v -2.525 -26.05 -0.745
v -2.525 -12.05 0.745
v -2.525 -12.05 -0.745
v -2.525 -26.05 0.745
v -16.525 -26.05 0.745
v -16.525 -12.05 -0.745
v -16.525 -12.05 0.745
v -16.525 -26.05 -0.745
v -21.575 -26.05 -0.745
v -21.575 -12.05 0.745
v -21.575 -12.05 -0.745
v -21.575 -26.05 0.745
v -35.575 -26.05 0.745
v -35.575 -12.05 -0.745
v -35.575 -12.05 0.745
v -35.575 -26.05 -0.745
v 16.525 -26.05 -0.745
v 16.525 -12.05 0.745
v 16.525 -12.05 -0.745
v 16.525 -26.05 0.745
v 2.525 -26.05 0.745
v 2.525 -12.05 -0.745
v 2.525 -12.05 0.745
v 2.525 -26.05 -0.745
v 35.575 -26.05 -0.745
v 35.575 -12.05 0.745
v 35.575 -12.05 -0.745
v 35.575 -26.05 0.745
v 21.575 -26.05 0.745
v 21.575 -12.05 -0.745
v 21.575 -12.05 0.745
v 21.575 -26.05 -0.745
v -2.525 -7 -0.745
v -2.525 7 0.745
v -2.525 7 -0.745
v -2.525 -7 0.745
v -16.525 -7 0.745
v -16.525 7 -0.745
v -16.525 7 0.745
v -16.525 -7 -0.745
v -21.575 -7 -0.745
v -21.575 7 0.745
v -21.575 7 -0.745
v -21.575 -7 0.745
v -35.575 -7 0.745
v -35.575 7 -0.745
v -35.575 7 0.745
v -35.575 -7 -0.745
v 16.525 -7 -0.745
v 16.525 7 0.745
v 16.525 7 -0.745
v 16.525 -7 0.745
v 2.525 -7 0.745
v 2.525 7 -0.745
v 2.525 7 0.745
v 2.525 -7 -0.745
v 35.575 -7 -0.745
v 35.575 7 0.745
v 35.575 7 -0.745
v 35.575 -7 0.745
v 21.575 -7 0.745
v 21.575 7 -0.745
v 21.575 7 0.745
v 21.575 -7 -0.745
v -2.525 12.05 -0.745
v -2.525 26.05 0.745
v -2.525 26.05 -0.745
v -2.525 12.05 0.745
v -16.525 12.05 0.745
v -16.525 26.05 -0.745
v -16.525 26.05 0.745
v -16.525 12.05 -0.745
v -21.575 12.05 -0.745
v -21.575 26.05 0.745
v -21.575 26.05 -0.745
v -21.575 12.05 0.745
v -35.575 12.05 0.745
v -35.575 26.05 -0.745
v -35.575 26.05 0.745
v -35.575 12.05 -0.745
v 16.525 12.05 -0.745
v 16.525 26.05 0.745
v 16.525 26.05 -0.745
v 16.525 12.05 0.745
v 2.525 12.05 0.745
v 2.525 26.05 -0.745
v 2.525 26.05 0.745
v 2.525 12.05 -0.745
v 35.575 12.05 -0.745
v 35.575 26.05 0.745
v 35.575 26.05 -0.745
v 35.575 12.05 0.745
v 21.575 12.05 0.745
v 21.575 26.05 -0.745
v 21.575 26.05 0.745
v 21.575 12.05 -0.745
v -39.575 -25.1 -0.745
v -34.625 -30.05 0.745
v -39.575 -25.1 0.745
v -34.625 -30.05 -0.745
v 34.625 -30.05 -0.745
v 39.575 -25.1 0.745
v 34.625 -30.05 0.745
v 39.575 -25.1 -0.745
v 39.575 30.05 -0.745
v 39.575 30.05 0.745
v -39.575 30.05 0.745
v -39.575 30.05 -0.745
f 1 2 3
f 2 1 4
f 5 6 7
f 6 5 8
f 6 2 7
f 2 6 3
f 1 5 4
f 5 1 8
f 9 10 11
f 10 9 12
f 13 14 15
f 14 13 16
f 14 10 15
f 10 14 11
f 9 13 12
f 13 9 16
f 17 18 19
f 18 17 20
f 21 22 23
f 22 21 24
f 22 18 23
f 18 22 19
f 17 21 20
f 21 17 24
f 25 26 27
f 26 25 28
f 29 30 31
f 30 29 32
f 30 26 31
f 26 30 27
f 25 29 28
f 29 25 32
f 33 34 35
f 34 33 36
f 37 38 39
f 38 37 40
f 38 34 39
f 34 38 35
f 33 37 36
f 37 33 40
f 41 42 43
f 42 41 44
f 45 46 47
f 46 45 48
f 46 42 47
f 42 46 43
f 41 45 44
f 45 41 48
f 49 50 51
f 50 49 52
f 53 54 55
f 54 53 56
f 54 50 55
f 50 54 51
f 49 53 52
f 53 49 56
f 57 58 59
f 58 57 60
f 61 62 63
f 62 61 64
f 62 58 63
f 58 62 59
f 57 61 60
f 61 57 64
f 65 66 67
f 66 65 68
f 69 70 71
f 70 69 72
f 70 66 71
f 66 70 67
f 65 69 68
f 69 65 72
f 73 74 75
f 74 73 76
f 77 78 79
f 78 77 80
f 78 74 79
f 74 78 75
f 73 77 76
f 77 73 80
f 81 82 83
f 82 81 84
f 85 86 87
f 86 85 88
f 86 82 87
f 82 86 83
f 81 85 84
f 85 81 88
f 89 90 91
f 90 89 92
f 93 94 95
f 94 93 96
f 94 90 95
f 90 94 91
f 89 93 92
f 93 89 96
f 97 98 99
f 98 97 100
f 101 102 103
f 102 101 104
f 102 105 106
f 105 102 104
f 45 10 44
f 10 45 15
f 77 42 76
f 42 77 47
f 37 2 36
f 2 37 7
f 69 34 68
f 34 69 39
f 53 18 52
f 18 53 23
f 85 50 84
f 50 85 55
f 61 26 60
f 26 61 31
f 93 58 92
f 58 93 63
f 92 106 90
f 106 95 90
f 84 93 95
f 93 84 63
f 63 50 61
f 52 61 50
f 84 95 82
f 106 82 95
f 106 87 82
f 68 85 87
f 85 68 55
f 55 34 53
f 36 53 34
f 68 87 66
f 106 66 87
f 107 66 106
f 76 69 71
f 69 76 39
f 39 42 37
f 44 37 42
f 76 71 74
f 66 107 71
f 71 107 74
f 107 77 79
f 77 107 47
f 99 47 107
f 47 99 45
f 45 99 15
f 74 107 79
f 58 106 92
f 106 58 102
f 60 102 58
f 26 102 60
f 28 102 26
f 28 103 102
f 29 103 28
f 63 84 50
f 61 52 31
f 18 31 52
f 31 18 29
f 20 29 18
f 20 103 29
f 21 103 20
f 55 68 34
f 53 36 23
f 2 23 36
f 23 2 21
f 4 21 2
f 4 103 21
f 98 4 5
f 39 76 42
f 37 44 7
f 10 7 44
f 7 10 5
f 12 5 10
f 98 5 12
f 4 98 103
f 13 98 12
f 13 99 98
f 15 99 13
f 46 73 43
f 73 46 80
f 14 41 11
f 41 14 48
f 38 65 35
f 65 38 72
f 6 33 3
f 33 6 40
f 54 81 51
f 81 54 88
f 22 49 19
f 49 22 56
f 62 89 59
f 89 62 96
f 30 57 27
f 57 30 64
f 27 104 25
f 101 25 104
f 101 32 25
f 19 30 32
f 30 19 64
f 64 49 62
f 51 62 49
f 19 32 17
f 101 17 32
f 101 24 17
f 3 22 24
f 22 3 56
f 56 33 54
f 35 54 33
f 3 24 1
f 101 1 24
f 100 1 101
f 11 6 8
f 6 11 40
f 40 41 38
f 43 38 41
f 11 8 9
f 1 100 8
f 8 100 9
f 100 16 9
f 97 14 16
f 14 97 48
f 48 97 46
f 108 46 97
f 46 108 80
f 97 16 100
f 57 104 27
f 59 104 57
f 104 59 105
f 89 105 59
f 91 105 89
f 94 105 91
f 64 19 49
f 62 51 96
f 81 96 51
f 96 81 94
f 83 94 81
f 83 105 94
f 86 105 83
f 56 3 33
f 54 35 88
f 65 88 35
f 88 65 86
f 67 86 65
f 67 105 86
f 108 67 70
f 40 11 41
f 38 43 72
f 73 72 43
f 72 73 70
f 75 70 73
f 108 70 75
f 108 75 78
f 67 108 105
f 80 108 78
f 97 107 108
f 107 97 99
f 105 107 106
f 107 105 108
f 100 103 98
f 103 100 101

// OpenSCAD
hole_gap = 5.05;
hole_size = 14;
plate_height = 1.49;
plate_length = 79.15;
plate_width = 60.1;


difference(){
//Base
cube([plate_length, plate_width, plate_height], center=true);

//Rows
for(k = [-1:1:1]){
    //Columns
    for(i = [-1:2:1]){
    for(j = [0:1:1]){
        translate([i*((j*14+(0.5+j)*hole_gap)+hole_size/2), k*(hole_size+hole_gap), 0])
            cube([hole_size, hole_size, plate_height + 0.001], center=true);
    }
    }
}

//Edges(for the screws)
for( r = [-1:2:1])
translate([r*(plate_length/2), -(plate_width/2), 0])
rotate([0,0, r*45])
cube([hole_size/2, hole_size/2, plate_height+ 0.001], center=true);
}
